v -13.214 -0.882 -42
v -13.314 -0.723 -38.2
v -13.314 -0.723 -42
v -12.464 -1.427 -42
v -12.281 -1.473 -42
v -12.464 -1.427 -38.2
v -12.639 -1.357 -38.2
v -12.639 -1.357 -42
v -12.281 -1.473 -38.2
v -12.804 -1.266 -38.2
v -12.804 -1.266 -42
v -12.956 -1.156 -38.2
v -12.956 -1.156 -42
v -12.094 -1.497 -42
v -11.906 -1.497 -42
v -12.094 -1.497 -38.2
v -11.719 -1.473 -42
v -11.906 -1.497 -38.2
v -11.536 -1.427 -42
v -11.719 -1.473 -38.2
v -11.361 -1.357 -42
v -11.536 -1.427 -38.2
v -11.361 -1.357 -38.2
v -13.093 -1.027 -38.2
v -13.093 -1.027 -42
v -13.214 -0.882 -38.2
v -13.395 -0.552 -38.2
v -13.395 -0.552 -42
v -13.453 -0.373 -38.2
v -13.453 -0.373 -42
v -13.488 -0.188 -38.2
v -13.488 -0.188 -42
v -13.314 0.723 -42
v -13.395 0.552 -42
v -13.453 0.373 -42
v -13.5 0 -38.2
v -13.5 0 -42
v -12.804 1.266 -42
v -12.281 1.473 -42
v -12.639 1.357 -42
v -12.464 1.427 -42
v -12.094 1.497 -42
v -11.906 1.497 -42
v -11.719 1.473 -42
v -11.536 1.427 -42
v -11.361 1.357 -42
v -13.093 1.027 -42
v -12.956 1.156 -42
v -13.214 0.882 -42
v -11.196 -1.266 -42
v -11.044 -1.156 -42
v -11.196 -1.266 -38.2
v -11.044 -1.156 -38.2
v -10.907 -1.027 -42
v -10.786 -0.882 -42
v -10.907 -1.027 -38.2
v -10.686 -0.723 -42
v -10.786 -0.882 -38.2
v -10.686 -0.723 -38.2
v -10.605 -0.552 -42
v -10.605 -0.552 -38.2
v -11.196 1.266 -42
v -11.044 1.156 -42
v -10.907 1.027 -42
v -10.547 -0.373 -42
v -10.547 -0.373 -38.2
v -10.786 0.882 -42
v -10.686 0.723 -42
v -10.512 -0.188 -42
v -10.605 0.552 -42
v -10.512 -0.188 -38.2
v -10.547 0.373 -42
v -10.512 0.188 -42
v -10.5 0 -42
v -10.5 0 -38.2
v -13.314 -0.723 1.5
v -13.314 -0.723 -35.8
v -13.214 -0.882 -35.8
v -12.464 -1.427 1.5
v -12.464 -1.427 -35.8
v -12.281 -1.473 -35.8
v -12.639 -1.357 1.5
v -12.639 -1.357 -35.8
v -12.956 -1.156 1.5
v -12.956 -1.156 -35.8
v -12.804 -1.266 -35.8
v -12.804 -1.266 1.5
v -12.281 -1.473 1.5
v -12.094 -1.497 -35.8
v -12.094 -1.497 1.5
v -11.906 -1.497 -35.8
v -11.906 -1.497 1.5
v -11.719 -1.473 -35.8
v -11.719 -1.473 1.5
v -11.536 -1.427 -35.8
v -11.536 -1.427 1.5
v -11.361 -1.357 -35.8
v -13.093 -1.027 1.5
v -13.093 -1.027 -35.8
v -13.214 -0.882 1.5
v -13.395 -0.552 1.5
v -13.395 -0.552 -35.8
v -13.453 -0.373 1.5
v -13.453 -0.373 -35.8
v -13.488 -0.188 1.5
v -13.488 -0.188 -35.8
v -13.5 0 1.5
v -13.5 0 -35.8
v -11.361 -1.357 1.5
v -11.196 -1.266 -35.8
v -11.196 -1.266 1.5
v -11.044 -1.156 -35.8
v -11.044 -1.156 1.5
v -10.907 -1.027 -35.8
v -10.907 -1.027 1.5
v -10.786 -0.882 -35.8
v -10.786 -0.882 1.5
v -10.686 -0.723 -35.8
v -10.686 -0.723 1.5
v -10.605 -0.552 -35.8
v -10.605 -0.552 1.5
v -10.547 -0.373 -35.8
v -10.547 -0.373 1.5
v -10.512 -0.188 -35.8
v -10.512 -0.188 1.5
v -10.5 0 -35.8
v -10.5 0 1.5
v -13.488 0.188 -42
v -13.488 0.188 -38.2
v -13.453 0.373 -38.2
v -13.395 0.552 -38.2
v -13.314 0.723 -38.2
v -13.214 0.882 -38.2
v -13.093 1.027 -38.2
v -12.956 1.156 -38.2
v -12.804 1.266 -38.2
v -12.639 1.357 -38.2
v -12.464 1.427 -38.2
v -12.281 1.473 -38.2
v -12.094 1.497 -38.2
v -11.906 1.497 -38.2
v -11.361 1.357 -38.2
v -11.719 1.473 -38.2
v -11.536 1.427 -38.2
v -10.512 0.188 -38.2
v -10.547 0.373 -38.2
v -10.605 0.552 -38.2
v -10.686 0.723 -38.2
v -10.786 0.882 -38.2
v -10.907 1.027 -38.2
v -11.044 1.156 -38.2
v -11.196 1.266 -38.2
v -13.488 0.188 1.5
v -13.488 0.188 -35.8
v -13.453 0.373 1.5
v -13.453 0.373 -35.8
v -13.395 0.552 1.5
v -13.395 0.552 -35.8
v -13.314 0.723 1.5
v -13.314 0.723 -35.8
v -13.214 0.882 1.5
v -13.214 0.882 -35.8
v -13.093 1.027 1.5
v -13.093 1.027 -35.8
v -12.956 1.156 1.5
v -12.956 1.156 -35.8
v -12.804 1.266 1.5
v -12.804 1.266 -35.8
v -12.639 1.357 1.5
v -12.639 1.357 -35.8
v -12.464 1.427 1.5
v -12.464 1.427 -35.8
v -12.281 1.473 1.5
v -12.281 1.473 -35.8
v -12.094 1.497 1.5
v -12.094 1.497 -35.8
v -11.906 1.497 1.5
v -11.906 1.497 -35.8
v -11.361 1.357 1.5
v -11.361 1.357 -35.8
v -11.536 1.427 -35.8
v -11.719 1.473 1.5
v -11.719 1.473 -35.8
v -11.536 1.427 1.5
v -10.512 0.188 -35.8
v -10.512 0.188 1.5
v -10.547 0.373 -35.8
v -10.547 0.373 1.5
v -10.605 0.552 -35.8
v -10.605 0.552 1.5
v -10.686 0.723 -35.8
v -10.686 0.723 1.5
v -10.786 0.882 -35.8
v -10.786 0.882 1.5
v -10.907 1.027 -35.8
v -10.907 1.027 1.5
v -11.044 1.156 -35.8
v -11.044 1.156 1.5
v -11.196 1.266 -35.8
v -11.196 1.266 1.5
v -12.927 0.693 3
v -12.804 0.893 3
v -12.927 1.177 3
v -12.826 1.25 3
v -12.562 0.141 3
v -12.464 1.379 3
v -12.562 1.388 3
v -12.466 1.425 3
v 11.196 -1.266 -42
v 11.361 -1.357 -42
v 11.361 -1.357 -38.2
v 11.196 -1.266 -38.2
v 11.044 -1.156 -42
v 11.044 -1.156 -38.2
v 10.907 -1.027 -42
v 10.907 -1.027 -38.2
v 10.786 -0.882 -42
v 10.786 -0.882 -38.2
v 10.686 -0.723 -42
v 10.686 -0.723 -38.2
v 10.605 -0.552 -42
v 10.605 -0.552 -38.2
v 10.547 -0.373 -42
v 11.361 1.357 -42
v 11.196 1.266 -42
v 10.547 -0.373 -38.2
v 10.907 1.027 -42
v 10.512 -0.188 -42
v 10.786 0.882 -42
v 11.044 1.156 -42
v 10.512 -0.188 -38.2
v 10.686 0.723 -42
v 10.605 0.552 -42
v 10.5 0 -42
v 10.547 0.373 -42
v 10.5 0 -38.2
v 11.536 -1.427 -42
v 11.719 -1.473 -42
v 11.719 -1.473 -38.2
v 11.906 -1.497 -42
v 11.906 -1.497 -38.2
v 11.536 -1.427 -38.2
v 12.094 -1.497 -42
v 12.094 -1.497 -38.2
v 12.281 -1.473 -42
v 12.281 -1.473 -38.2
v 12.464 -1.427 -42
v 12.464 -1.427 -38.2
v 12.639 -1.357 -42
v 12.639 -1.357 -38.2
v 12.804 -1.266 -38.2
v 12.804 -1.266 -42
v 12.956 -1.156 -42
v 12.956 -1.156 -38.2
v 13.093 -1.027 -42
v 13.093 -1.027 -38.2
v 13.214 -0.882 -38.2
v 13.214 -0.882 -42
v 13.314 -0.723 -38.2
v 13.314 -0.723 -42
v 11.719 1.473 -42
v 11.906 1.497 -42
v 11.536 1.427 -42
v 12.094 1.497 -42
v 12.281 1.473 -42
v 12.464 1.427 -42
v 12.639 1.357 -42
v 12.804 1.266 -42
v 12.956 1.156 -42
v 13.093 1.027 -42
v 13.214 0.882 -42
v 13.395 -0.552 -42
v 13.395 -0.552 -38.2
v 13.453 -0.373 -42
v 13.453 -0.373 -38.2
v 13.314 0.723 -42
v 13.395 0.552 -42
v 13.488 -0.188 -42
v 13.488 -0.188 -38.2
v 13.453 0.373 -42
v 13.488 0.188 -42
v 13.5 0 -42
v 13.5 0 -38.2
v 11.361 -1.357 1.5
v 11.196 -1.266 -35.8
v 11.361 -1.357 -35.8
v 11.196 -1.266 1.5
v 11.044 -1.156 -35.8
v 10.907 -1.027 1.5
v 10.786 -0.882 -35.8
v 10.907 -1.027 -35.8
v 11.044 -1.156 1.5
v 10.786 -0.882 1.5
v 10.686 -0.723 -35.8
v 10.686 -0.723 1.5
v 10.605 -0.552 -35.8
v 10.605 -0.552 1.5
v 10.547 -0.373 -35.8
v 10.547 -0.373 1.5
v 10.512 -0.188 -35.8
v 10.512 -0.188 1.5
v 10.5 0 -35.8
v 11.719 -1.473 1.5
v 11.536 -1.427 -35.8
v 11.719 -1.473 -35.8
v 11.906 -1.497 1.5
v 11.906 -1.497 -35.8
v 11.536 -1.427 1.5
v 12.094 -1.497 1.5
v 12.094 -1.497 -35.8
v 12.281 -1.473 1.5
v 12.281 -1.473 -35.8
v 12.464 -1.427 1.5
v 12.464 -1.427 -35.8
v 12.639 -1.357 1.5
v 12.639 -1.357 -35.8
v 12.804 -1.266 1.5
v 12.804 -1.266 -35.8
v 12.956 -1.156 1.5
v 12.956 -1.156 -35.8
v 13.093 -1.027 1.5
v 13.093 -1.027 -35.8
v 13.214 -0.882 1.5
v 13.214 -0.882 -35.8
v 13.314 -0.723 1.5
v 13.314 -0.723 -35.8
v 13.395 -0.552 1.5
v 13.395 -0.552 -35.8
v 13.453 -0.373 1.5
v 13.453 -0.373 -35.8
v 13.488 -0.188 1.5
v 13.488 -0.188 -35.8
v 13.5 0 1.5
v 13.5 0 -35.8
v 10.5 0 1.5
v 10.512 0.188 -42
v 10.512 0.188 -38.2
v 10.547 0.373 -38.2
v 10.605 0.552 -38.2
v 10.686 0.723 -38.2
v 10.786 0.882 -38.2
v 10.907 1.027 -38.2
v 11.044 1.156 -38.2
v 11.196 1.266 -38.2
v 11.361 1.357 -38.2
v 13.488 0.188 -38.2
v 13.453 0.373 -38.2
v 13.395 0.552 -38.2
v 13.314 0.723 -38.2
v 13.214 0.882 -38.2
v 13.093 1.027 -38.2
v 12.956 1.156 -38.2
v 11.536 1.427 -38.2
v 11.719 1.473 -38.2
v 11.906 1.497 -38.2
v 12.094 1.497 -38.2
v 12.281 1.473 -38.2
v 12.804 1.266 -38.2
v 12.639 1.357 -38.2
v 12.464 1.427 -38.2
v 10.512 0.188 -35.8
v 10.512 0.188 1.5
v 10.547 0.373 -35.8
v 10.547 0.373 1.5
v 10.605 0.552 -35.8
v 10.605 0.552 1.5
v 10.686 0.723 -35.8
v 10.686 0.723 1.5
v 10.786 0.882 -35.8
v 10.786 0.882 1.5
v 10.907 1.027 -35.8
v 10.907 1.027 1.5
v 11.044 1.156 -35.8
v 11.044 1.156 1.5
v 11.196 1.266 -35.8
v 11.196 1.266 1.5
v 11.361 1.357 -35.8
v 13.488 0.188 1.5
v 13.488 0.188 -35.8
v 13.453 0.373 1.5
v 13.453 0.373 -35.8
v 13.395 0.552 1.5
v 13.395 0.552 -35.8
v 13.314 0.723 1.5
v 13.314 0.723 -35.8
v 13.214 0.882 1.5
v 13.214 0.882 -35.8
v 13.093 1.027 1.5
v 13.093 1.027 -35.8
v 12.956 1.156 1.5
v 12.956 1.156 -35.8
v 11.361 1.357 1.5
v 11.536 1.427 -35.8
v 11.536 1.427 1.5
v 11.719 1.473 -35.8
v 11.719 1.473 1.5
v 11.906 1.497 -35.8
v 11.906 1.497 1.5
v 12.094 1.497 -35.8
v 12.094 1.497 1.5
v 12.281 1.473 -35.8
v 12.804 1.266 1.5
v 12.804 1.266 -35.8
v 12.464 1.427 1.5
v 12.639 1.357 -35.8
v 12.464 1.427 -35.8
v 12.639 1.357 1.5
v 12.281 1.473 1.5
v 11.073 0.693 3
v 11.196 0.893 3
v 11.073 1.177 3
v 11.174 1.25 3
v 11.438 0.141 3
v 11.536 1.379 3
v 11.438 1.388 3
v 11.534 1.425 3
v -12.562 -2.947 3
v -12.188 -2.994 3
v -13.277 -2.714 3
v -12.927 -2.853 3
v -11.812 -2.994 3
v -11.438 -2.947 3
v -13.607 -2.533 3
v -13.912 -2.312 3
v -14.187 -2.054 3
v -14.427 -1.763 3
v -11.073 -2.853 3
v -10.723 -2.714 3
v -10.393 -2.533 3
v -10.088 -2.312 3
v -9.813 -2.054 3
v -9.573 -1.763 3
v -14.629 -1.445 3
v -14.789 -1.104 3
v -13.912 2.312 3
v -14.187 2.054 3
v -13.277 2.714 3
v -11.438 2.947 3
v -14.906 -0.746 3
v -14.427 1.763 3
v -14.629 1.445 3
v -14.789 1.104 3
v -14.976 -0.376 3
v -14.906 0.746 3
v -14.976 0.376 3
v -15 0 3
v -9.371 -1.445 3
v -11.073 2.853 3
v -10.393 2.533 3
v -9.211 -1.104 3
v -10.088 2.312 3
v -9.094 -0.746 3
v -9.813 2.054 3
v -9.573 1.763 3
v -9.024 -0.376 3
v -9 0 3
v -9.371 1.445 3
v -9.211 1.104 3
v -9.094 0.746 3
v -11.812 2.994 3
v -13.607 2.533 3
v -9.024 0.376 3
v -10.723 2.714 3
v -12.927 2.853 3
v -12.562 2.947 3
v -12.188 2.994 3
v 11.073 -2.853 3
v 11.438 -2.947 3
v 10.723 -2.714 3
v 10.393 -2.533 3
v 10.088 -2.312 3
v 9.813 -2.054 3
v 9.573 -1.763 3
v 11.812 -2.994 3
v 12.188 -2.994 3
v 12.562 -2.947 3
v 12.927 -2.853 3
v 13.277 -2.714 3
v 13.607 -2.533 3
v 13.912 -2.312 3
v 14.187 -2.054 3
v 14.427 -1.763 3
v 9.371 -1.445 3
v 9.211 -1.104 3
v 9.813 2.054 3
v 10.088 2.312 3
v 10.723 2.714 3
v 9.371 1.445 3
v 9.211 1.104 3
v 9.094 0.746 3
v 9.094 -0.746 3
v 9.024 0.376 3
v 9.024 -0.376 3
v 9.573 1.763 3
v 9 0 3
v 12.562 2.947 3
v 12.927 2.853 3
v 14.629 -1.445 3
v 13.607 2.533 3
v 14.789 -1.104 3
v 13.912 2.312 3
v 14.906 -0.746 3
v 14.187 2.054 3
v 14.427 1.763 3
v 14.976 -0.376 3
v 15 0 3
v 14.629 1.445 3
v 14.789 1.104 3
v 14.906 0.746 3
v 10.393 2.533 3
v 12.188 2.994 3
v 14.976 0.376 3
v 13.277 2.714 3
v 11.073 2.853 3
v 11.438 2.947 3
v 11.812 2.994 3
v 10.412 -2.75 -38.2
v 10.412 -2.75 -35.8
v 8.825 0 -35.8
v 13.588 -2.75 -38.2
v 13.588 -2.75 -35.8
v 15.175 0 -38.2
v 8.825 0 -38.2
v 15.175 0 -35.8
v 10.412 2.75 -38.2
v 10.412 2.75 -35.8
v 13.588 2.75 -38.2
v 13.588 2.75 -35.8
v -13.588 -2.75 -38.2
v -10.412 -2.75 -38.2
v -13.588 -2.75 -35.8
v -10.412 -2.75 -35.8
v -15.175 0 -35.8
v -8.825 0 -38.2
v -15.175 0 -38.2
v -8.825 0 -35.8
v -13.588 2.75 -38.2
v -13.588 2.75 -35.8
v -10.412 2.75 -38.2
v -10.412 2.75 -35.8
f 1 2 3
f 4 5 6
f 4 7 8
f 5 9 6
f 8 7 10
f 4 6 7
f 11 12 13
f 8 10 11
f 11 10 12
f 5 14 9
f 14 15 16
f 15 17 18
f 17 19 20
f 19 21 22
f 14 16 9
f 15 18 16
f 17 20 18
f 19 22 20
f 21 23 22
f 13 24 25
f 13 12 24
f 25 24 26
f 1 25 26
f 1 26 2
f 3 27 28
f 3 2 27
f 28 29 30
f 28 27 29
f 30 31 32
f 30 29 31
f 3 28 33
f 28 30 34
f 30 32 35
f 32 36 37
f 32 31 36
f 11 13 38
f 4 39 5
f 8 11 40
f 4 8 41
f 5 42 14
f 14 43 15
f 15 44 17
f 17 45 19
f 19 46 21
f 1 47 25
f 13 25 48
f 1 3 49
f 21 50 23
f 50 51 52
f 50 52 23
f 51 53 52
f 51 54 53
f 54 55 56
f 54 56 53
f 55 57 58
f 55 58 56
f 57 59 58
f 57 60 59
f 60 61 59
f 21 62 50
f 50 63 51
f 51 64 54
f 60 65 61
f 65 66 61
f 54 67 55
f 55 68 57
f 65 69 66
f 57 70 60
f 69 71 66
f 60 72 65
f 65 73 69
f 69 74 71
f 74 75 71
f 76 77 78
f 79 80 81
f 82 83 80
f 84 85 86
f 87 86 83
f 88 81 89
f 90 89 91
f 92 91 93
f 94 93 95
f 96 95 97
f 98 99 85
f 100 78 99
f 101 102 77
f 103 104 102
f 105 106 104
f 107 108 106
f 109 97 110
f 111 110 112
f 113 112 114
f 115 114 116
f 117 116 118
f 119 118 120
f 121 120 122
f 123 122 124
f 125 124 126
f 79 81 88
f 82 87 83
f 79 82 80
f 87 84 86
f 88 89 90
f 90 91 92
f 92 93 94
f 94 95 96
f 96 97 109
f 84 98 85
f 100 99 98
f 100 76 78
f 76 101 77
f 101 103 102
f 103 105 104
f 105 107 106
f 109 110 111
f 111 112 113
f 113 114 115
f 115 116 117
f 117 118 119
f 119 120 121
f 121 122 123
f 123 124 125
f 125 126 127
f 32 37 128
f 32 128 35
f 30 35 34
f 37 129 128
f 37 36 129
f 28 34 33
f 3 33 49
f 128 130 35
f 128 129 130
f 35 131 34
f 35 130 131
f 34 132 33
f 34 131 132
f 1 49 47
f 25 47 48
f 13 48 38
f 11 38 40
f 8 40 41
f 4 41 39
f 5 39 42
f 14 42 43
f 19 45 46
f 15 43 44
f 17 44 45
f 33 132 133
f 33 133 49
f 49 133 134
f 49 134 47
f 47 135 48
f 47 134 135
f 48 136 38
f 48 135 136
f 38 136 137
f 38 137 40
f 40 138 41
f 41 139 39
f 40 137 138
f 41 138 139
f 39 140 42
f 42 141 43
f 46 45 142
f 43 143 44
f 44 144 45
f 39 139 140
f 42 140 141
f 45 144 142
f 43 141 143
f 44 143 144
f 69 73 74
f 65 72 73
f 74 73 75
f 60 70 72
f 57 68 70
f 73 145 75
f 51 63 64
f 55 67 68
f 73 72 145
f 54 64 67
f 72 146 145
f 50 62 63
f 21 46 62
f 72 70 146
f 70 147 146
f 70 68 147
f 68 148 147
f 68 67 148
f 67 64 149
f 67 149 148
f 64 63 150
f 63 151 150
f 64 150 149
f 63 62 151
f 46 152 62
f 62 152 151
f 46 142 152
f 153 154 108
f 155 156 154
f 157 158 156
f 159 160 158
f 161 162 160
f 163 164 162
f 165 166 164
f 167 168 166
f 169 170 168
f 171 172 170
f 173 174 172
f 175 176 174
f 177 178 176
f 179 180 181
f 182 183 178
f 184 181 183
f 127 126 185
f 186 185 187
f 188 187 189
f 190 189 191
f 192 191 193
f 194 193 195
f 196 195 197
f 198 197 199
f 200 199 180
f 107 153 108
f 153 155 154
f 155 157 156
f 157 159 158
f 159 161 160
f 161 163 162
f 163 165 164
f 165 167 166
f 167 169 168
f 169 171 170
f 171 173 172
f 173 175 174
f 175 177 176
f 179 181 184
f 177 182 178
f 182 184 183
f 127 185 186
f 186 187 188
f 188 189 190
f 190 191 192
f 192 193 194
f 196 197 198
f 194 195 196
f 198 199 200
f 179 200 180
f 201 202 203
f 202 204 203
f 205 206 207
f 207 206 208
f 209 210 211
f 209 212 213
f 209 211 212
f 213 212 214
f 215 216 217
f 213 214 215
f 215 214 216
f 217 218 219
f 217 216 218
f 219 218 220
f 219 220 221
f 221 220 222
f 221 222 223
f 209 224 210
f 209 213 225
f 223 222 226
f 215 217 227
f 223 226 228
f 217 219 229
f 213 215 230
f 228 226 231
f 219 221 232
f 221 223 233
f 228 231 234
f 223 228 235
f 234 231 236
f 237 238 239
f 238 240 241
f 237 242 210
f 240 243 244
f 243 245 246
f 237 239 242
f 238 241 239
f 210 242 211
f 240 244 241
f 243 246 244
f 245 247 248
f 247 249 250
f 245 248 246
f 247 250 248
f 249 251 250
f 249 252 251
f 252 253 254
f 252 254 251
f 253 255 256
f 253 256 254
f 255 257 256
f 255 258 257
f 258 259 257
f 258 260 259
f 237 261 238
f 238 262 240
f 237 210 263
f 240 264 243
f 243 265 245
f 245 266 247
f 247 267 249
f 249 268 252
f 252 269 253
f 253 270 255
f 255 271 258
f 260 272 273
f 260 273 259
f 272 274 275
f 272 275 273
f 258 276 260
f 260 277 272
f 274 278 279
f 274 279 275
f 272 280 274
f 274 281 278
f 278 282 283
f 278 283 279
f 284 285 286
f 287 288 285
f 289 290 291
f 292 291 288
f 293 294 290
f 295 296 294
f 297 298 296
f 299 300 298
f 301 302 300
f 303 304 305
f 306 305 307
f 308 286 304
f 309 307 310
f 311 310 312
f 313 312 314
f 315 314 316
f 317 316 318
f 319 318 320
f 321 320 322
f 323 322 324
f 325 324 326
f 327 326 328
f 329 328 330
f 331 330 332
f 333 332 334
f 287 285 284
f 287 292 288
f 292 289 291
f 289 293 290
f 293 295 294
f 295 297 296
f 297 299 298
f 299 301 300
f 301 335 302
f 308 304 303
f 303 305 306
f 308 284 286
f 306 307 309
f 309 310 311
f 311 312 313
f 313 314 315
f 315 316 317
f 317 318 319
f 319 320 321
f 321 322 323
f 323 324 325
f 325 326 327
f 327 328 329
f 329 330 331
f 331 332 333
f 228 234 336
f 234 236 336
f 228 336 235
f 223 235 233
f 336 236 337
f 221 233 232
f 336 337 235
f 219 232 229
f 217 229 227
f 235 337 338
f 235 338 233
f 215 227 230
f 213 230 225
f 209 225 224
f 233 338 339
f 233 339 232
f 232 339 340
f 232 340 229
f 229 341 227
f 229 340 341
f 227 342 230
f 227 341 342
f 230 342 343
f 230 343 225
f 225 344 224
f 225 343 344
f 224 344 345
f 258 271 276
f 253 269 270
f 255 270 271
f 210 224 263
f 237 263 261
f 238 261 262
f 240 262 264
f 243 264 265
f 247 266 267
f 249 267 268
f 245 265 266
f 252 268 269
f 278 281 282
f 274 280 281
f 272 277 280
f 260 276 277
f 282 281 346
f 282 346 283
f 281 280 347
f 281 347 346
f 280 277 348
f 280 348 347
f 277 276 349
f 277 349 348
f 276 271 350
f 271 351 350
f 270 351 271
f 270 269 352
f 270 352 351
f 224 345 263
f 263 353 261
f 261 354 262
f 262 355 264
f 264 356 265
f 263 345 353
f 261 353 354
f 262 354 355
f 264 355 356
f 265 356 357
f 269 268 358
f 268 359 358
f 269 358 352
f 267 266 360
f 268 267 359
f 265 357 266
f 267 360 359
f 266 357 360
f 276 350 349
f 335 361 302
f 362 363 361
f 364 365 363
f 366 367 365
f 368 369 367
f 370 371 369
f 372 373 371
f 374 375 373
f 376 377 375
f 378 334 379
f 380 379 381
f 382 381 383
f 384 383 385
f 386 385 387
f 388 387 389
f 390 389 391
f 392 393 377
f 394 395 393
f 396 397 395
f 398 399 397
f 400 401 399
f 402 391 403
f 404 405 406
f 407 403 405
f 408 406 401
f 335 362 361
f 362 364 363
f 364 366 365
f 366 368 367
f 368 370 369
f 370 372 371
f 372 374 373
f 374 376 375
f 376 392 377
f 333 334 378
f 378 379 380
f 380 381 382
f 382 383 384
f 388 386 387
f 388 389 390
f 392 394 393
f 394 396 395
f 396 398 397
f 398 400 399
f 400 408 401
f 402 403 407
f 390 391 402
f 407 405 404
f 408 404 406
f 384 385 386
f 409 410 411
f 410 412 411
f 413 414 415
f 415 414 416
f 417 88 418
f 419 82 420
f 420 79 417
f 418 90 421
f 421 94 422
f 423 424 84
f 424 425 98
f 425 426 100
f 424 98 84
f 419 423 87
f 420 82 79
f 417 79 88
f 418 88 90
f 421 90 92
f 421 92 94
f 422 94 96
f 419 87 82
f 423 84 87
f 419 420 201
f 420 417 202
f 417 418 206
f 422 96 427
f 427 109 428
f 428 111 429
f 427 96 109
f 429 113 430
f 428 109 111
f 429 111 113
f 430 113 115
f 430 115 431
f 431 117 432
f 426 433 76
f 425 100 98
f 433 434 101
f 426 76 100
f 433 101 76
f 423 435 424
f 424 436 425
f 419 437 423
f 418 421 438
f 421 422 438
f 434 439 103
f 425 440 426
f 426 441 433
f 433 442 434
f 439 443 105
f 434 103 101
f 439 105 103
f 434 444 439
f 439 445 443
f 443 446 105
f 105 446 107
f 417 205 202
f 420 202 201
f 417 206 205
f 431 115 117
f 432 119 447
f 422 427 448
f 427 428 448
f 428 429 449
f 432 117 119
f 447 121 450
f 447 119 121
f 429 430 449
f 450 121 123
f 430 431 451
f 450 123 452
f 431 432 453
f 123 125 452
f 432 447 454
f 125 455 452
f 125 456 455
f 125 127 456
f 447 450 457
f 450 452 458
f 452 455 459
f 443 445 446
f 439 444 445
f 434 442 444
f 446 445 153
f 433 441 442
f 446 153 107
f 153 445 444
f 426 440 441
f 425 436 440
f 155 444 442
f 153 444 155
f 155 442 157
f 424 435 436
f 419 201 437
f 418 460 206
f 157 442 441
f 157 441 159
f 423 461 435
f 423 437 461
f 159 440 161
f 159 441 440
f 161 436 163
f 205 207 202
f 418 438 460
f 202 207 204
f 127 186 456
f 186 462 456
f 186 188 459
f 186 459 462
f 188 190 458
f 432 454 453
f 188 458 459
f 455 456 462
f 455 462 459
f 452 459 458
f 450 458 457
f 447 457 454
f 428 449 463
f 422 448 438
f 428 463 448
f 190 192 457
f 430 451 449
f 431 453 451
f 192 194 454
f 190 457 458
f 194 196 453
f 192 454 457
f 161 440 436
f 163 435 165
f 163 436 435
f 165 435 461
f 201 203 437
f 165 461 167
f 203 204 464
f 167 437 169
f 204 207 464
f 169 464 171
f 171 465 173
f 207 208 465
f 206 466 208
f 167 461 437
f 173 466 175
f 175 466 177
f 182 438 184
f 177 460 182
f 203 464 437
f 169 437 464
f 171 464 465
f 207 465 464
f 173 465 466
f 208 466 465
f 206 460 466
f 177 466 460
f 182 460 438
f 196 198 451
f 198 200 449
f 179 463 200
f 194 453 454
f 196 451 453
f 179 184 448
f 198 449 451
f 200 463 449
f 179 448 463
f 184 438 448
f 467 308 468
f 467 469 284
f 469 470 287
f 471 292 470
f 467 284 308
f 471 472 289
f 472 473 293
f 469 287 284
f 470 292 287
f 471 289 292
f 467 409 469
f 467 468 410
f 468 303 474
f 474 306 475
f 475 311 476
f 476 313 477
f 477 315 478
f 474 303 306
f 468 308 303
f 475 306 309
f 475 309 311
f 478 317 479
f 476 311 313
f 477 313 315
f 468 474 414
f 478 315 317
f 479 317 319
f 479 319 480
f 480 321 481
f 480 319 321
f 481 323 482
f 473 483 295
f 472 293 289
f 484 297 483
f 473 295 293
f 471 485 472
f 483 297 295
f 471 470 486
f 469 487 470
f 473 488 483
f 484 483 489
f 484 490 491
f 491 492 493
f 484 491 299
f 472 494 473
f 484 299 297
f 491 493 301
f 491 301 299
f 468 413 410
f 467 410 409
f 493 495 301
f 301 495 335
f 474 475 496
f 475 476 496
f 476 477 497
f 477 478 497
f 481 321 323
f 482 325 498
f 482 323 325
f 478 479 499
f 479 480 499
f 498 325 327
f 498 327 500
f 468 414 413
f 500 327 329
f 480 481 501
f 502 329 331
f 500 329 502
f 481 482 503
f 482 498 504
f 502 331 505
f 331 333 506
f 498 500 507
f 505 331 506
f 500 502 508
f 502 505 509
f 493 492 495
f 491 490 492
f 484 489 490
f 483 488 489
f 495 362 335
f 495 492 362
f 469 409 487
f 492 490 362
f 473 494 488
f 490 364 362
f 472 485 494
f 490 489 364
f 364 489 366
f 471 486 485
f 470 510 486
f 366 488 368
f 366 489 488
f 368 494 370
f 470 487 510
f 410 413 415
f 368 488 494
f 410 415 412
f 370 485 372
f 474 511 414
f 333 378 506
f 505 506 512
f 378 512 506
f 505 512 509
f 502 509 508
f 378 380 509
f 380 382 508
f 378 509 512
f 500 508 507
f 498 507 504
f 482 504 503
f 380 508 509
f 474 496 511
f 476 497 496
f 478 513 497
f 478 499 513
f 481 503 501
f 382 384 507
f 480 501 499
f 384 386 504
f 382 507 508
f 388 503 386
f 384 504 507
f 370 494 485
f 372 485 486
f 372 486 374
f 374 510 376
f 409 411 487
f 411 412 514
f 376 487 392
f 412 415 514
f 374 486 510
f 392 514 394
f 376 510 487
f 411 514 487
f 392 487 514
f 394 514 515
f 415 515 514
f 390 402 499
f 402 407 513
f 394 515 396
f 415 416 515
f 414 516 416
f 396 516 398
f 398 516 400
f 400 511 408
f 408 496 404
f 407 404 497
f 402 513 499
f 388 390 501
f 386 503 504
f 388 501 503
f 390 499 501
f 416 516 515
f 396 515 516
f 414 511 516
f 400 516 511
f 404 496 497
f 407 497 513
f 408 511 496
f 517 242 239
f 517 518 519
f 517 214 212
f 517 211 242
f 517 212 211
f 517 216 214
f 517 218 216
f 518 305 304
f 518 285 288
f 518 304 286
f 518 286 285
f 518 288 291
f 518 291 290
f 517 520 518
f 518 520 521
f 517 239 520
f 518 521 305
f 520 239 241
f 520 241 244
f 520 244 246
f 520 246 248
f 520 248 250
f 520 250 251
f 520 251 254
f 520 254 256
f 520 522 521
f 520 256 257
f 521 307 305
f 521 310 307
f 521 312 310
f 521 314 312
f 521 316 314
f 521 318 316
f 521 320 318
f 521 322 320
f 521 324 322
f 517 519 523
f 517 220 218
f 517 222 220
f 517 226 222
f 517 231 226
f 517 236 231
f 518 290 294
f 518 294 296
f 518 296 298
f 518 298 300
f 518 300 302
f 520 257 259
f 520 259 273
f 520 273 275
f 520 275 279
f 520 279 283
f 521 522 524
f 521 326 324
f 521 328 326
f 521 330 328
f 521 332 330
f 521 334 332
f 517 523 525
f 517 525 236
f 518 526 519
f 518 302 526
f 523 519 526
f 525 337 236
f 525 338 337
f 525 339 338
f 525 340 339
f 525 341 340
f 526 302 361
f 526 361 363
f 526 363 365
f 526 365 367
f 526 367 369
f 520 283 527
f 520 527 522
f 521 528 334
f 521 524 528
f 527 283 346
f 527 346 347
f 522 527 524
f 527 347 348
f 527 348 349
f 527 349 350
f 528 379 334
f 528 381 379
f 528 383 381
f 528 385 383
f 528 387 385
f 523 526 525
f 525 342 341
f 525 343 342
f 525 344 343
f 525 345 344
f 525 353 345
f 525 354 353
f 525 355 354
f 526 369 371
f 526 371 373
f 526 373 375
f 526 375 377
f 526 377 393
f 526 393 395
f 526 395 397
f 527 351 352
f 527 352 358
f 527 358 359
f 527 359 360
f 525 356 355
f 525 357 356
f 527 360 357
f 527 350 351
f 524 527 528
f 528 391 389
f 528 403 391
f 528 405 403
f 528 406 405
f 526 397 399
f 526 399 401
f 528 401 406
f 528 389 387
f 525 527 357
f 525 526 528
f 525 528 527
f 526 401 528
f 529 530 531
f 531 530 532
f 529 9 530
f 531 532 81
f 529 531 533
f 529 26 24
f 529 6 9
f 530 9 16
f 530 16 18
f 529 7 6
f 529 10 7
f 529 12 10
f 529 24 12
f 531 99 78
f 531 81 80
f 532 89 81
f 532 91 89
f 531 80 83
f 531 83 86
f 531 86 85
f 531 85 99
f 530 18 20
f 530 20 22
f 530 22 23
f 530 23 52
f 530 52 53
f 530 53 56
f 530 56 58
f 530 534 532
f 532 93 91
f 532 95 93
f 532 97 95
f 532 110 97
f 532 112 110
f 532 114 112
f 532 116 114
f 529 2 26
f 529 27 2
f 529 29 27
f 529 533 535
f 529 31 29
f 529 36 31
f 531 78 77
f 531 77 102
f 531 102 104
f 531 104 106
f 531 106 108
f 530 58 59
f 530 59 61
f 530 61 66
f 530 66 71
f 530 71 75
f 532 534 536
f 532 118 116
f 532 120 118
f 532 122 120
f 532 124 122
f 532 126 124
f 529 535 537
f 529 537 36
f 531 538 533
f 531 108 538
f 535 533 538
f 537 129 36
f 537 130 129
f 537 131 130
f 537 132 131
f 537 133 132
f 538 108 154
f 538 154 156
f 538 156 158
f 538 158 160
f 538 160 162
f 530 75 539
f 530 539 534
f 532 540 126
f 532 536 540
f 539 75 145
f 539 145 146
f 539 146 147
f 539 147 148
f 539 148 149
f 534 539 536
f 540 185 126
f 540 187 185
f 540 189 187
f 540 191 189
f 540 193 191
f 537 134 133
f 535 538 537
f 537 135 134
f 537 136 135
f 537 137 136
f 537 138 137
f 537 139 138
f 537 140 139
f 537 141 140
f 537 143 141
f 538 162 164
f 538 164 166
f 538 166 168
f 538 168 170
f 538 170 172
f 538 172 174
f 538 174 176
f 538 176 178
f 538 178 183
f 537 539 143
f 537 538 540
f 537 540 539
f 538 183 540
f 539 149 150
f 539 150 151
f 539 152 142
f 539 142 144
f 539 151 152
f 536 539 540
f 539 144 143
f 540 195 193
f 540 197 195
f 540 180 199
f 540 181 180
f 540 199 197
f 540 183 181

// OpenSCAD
$fn = 50;

difference() {
	union() {
		translate(v = [-12, 0, 3]) {
			rotate(a = [0, 0, 0]) {
				difference() {
					union() {
						translate(v = [0, 0, -45.0]) {
							cylinder(h = 45, r = 1.5);
						}
						translate(v = [0, 0, -1.5]) {
							cylinder(h = 1.5, r1 = 1.5, r2 = 3);
						}
					}
					union();
				}
			}
		}
		translate(v = [-12, 0, -38.2]) {
			rotate(a = [0, 0, 0]) {
				difference() {
					union() {
						linear_extrude(height = 2.4) {
							polygon(points = [[3.1754264805429417, 0.0], [1.5877132402714713, 2.75], [-1.5877132402714702, 2.7500000000000004], [-3.1754264805429417, 3.888775875324659e-16], [-1.5877132402714722, -2.7499999999999996], [1.5877132402714687, -2.7500000000000013]]);
						}
					}
					union();
				}
			}
		}
		translate(v = [12, 0, 3]) {
			rotate(a = [0, 0, 0]) {
				difference() {
					union() {
						translate(v = [0, 0, -45.0]) {
							cylinder(h = 45, r = 1.5);
						}
						translate(v = [0, 0, -1.5]) {
							cylinder(h = 1.5, r1 = 1.5, r2 = 3);
						}
					}
					union();
				}
			}
		}
		translate(v = [12, 0, -38.2]) {
			rotate(a = [0, 0, 0]) {
				difference() {
					union() {
						linear_extrude(height = 2.4) {
							polygon(points = [[3.1754264805429417, 0.0], [1.5877132402714713, 2.75], [-1.5877132402714702, 2.7500000000000004], [-3.1754264805429417, 3.888775875324659e-16], [-1.5877132402714722, -2.7499999999999996], [1.5877132402714687, -2.7500000000000013]]);
						}
					}
					union();
				}
			}
		}
	}
	union();
}
